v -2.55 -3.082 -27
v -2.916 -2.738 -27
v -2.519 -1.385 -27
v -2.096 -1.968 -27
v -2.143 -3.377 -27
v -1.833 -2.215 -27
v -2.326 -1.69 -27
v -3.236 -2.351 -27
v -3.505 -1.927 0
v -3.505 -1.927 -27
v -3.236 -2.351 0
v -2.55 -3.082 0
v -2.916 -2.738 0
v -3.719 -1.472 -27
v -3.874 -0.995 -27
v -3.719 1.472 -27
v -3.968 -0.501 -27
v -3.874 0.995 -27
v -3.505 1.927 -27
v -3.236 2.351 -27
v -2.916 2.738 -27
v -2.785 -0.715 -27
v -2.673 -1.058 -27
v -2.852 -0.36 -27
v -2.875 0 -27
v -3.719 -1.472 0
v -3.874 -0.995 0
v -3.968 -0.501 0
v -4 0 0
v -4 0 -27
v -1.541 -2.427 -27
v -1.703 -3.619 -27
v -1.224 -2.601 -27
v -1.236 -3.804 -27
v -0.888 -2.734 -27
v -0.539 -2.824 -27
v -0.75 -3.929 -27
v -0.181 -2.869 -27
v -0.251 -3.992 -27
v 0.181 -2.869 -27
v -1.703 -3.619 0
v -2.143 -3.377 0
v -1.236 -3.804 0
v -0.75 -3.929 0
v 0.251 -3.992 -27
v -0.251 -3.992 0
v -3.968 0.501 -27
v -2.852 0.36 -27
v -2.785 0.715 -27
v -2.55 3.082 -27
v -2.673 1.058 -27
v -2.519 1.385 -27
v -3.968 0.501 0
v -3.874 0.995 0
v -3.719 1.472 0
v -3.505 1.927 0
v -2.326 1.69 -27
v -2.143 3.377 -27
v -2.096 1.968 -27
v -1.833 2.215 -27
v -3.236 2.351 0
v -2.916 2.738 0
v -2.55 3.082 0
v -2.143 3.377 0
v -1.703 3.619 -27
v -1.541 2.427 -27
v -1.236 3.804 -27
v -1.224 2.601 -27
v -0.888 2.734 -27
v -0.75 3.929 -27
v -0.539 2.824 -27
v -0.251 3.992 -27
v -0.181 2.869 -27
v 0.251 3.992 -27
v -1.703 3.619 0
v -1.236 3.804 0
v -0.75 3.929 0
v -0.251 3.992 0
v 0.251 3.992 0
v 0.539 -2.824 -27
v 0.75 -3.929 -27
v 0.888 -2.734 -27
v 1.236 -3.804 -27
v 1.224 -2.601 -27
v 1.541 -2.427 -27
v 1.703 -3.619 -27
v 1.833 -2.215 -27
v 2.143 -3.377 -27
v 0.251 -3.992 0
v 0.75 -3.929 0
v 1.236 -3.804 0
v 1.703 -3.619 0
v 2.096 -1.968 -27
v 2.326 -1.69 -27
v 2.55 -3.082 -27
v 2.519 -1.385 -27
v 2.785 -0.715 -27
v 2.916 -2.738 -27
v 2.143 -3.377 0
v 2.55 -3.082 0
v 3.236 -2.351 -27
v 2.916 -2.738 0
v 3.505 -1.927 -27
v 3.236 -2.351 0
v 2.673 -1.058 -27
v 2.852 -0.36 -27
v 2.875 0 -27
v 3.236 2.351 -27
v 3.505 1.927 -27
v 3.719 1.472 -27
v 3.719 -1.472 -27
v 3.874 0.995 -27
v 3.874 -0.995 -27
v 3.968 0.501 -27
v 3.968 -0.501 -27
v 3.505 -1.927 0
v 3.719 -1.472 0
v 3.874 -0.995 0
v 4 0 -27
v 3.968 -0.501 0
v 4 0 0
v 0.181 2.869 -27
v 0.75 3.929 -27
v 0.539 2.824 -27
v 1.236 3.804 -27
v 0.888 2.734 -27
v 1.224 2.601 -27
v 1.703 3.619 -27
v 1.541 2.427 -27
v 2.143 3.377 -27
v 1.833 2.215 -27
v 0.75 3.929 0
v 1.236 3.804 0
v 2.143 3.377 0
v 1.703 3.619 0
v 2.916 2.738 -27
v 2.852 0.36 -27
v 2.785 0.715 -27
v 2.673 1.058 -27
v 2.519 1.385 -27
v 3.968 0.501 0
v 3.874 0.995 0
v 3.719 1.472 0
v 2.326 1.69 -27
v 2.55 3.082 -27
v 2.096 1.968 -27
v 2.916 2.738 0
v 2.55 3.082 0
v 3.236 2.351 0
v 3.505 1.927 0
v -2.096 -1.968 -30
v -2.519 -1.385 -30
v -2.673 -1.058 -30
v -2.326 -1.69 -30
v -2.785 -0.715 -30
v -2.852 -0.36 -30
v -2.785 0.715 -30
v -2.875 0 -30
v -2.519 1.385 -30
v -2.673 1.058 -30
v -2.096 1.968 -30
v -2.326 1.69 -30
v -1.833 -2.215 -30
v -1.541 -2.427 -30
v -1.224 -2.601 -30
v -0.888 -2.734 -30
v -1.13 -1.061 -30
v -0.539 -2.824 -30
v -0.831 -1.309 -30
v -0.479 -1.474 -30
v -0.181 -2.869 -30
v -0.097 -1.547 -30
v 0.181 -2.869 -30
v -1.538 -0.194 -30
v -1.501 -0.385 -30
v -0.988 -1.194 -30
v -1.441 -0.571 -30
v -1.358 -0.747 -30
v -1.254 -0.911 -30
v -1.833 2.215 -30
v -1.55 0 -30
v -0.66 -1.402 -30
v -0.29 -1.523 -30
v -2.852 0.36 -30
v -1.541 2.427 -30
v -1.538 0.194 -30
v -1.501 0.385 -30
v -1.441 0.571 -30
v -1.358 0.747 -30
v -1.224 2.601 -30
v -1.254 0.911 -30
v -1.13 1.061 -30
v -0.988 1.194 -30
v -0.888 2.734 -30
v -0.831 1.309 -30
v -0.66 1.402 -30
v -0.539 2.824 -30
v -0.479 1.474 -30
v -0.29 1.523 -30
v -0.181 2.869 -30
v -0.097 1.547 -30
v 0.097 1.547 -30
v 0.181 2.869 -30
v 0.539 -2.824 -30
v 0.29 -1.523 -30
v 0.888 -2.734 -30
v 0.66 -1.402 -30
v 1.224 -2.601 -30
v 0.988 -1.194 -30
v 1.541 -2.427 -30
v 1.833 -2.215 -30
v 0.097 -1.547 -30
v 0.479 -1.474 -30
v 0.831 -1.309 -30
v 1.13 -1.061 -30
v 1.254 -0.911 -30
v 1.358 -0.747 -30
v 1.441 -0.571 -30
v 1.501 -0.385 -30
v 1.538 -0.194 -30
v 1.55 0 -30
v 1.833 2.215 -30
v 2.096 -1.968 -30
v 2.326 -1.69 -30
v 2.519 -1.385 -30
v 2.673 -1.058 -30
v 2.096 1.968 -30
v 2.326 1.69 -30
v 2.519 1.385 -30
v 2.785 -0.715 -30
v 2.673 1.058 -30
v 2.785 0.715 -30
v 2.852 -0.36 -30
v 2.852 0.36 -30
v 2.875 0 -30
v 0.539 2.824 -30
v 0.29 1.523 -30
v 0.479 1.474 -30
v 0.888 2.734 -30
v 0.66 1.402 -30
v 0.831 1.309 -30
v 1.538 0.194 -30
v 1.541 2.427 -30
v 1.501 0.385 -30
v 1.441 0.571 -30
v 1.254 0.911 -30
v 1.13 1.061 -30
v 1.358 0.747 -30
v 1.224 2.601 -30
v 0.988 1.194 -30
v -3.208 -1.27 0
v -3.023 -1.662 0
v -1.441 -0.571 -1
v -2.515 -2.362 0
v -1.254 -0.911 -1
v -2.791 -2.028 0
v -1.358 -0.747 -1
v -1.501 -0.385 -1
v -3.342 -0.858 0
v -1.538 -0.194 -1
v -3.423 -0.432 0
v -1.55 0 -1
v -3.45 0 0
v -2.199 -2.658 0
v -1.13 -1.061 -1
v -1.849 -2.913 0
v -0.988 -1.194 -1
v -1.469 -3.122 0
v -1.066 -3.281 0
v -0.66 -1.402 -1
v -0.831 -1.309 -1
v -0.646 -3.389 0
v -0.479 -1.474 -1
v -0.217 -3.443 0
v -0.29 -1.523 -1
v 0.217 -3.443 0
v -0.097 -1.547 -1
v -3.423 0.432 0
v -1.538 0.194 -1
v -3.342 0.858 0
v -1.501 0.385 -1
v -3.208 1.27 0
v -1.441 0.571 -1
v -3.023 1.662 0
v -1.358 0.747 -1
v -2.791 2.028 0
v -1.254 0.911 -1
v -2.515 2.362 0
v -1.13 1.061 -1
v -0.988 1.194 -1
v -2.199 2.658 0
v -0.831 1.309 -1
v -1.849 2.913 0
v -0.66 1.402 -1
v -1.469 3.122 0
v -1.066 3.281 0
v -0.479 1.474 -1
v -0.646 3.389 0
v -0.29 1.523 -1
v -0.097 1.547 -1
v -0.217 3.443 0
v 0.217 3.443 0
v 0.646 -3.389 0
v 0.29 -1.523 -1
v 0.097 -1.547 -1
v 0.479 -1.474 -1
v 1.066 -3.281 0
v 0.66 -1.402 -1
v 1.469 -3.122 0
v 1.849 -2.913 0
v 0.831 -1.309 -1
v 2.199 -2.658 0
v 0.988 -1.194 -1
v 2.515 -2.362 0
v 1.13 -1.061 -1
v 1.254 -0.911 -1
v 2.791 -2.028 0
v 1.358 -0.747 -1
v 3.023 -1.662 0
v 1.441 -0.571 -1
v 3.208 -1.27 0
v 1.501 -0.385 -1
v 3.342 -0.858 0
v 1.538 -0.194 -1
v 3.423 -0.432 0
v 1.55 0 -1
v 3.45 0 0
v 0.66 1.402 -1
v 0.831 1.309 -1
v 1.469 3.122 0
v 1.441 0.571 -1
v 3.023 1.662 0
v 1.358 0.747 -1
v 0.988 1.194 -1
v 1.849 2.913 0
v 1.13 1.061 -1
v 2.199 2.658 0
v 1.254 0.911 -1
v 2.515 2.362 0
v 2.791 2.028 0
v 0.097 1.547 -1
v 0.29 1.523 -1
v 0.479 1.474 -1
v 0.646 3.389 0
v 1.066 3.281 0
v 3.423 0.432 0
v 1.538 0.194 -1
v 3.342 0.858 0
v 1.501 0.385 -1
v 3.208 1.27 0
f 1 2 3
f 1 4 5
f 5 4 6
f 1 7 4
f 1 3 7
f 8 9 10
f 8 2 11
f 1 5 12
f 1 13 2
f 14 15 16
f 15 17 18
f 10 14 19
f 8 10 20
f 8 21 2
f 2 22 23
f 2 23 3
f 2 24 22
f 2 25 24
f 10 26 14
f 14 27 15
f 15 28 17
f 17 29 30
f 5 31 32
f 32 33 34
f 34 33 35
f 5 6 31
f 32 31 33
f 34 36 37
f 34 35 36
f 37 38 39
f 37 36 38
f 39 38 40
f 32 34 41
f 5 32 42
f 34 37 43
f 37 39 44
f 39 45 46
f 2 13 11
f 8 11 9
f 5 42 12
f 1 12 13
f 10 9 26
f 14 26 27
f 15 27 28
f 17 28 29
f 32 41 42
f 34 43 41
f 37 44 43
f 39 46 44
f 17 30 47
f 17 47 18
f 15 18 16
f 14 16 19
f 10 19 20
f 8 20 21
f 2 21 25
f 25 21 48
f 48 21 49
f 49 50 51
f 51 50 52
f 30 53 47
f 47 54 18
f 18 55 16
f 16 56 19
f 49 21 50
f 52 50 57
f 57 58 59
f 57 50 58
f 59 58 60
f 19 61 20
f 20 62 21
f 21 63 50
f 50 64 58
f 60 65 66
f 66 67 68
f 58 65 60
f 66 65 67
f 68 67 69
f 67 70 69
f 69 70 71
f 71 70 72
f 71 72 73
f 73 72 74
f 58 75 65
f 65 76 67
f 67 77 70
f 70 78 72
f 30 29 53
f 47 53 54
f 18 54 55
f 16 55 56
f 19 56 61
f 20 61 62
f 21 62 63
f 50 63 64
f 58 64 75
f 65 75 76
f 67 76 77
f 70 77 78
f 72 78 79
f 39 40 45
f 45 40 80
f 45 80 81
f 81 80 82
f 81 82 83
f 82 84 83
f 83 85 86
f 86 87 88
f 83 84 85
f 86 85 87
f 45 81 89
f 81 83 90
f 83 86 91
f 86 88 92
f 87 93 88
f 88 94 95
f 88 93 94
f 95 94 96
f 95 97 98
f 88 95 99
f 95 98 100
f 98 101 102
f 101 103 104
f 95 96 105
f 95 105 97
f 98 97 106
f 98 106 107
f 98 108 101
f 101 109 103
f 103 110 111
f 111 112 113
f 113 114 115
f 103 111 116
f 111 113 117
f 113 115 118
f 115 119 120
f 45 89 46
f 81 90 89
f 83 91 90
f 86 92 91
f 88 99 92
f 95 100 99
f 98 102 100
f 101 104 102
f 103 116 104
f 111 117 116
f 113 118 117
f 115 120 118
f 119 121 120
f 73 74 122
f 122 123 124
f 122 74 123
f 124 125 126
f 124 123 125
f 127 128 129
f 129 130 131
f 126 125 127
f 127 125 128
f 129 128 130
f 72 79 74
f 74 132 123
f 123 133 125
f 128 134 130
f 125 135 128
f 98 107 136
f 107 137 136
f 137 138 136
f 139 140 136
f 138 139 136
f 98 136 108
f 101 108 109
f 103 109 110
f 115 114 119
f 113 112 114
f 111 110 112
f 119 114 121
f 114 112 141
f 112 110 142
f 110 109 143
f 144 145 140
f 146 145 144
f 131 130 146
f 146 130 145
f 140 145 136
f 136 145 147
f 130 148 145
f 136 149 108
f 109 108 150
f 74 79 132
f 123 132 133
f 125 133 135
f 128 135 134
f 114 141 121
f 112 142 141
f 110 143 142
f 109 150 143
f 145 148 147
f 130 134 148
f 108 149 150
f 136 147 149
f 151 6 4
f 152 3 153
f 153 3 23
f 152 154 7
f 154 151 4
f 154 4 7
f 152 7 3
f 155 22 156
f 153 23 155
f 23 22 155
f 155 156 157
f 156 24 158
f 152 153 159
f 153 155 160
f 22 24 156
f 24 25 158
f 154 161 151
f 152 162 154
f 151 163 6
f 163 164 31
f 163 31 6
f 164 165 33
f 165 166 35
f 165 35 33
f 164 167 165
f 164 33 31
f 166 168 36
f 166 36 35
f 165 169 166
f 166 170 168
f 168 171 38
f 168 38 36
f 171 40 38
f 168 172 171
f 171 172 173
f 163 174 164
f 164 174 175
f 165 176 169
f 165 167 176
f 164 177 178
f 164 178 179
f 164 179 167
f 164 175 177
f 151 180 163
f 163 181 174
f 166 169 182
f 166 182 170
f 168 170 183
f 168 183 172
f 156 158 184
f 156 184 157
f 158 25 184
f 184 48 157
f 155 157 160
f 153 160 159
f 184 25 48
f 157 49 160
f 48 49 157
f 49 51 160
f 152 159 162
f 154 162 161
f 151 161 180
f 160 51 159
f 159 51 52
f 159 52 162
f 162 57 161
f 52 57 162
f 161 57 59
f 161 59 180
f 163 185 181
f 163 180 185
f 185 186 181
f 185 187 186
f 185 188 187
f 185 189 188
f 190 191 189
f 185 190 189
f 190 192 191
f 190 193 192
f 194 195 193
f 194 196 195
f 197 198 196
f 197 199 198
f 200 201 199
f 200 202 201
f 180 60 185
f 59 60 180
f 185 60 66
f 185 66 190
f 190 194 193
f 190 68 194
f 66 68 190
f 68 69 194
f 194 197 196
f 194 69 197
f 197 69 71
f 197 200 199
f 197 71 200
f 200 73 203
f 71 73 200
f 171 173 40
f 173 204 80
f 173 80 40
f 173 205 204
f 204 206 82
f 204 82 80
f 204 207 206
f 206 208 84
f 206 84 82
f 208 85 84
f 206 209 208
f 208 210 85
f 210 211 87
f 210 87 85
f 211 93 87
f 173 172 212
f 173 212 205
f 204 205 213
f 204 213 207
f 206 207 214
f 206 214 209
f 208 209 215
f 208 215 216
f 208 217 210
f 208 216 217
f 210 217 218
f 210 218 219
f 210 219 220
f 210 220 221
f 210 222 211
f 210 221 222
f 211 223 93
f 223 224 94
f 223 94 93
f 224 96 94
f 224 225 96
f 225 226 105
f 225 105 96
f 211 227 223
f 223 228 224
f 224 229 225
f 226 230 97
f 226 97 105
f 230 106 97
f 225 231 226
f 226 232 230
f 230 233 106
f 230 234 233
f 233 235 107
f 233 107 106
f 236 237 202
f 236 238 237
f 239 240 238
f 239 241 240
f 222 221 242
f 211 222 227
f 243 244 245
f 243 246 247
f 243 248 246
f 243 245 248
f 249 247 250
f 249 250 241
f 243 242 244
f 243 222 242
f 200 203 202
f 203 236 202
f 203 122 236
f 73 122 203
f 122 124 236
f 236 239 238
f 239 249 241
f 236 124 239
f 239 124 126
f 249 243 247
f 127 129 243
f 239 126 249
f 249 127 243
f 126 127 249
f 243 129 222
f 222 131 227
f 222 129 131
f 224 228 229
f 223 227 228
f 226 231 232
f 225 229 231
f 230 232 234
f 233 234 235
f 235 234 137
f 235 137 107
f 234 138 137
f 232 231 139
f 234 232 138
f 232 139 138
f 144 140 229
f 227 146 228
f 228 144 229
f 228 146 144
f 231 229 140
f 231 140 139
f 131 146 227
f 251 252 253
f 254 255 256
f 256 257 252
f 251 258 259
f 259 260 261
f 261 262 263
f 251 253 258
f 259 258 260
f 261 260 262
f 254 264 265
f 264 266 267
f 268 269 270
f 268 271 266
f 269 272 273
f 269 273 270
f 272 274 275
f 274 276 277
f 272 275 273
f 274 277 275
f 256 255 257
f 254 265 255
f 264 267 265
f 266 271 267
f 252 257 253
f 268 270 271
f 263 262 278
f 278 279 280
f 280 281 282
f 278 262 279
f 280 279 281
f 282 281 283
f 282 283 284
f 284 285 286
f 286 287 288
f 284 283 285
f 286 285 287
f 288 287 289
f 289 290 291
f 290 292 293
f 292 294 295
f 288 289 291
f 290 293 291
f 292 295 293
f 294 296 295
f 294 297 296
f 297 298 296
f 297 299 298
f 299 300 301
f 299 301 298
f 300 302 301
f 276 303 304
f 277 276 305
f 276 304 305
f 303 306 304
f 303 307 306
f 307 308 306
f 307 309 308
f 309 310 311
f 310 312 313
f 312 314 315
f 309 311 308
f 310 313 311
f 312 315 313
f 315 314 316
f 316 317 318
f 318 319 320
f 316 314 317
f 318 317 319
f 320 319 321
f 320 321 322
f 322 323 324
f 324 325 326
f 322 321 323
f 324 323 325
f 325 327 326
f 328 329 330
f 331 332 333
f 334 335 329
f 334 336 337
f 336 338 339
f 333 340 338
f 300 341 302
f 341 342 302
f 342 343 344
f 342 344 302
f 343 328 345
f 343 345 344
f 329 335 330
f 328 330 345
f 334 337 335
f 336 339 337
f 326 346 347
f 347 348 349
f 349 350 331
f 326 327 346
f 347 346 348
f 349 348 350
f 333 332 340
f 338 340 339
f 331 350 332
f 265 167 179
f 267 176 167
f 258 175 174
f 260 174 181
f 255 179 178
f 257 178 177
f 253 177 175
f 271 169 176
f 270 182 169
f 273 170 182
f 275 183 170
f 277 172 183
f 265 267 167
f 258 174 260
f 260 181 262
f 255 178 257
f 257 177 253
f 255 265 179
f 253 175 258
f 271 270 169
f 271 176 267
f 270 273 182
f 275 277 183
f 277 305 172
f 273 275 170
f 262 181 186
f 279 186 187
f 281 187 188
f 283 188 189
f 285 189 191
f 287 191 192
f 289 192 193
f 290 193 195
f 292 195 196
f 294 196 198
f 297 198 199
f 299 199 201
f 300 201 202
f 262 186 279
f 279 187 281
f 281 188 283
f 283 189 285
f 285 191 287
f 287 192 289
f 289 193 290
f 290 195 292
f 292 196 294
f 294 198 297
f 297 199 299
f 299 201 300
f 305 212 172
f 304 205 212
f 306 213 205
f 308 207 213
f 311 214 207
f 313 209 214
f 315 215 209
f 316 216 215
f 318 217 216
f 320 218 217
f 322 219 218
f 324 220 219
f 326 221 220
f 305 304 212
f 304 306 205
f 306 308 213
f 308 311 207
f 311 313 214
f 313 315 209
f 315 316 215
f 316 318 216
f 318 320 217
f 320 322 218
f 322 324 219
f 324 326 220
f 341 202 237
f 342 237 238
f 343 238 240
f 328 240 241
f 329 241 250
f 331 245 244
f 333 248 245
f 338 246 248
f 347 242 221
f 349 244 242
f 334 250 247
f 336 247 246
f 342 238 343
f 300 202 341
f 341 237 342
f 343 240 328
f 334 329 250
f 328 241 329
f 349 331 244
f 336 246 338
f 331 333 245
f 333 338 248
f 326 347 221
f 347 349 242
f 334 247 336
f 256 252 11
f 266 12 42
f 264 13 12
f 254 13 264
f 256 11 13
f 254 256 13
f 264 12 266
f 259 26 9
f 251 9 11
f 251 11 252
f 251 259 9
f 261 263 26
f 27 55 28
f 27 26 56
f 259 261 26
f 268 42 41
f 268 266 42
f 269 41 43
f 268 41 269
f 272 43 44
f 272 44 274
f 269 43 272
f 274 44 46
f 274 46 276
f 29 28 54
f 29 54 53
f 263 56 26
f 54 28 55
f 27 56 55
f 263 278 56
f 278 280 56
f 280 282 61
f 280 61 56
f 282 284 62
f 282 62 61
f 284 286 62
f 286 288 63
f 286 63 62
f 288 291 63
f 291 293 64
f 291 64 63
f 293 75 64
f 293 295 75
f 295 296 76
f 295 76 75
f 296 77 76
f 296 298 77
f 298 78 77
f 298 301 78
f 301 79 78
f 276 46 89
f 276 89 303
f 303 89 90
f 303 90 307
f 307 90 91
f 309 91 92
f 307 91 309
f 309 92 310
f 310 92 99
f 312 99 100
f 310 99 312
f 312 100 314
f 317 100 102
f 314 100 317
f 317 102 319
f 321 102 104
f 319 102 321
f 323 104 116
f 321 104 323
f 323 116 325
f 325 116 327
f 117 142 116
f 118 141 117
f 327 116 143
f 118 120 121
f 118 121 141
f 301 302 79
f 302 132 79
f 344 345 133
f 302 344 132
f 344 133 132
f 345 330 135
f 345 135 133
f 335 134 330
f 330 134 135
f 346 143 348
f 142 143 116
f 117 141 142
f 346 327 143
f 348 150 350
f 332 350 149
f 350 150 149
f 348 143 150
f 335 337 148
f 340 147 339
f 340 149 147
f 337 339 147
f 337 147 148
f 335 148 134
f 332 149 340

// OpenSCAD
$fn = 50;

difference() {
	union() {
		translate(v = [0, 0, -27.0]) {
			cylinder(h = 30, r = 4.0);
		}
		#translate(v = [0, 0, -30.0]) {
			cylinder(h = 30, r = 2.875);
		}
	}
	union() {
		translate(v = [0, 0, 0]) {
			rotate(a = [0, 0, 0]) {
				difference() {
					union() {
						translate(v = [0, 0, -30.0]) {
							cylinder(h = 30, r = 1.25);
						}
						translate(v = [0, 0, -1.0]) {
							cylinder(h = 1.0, r1 = 1.55, r2 = 3.45);
						}
						translate(v = [0, 0, -30.0]) {
							cylinder(h = 30, r = 1.55);
						}
						translate(v = [0, 0, -30.0]) {
							cylinder(h = 30, r = 1.25);
						}
					}
					union();
				}
			}
		}
		#cylinder(h = 3, r = 5.0);
	}
}
